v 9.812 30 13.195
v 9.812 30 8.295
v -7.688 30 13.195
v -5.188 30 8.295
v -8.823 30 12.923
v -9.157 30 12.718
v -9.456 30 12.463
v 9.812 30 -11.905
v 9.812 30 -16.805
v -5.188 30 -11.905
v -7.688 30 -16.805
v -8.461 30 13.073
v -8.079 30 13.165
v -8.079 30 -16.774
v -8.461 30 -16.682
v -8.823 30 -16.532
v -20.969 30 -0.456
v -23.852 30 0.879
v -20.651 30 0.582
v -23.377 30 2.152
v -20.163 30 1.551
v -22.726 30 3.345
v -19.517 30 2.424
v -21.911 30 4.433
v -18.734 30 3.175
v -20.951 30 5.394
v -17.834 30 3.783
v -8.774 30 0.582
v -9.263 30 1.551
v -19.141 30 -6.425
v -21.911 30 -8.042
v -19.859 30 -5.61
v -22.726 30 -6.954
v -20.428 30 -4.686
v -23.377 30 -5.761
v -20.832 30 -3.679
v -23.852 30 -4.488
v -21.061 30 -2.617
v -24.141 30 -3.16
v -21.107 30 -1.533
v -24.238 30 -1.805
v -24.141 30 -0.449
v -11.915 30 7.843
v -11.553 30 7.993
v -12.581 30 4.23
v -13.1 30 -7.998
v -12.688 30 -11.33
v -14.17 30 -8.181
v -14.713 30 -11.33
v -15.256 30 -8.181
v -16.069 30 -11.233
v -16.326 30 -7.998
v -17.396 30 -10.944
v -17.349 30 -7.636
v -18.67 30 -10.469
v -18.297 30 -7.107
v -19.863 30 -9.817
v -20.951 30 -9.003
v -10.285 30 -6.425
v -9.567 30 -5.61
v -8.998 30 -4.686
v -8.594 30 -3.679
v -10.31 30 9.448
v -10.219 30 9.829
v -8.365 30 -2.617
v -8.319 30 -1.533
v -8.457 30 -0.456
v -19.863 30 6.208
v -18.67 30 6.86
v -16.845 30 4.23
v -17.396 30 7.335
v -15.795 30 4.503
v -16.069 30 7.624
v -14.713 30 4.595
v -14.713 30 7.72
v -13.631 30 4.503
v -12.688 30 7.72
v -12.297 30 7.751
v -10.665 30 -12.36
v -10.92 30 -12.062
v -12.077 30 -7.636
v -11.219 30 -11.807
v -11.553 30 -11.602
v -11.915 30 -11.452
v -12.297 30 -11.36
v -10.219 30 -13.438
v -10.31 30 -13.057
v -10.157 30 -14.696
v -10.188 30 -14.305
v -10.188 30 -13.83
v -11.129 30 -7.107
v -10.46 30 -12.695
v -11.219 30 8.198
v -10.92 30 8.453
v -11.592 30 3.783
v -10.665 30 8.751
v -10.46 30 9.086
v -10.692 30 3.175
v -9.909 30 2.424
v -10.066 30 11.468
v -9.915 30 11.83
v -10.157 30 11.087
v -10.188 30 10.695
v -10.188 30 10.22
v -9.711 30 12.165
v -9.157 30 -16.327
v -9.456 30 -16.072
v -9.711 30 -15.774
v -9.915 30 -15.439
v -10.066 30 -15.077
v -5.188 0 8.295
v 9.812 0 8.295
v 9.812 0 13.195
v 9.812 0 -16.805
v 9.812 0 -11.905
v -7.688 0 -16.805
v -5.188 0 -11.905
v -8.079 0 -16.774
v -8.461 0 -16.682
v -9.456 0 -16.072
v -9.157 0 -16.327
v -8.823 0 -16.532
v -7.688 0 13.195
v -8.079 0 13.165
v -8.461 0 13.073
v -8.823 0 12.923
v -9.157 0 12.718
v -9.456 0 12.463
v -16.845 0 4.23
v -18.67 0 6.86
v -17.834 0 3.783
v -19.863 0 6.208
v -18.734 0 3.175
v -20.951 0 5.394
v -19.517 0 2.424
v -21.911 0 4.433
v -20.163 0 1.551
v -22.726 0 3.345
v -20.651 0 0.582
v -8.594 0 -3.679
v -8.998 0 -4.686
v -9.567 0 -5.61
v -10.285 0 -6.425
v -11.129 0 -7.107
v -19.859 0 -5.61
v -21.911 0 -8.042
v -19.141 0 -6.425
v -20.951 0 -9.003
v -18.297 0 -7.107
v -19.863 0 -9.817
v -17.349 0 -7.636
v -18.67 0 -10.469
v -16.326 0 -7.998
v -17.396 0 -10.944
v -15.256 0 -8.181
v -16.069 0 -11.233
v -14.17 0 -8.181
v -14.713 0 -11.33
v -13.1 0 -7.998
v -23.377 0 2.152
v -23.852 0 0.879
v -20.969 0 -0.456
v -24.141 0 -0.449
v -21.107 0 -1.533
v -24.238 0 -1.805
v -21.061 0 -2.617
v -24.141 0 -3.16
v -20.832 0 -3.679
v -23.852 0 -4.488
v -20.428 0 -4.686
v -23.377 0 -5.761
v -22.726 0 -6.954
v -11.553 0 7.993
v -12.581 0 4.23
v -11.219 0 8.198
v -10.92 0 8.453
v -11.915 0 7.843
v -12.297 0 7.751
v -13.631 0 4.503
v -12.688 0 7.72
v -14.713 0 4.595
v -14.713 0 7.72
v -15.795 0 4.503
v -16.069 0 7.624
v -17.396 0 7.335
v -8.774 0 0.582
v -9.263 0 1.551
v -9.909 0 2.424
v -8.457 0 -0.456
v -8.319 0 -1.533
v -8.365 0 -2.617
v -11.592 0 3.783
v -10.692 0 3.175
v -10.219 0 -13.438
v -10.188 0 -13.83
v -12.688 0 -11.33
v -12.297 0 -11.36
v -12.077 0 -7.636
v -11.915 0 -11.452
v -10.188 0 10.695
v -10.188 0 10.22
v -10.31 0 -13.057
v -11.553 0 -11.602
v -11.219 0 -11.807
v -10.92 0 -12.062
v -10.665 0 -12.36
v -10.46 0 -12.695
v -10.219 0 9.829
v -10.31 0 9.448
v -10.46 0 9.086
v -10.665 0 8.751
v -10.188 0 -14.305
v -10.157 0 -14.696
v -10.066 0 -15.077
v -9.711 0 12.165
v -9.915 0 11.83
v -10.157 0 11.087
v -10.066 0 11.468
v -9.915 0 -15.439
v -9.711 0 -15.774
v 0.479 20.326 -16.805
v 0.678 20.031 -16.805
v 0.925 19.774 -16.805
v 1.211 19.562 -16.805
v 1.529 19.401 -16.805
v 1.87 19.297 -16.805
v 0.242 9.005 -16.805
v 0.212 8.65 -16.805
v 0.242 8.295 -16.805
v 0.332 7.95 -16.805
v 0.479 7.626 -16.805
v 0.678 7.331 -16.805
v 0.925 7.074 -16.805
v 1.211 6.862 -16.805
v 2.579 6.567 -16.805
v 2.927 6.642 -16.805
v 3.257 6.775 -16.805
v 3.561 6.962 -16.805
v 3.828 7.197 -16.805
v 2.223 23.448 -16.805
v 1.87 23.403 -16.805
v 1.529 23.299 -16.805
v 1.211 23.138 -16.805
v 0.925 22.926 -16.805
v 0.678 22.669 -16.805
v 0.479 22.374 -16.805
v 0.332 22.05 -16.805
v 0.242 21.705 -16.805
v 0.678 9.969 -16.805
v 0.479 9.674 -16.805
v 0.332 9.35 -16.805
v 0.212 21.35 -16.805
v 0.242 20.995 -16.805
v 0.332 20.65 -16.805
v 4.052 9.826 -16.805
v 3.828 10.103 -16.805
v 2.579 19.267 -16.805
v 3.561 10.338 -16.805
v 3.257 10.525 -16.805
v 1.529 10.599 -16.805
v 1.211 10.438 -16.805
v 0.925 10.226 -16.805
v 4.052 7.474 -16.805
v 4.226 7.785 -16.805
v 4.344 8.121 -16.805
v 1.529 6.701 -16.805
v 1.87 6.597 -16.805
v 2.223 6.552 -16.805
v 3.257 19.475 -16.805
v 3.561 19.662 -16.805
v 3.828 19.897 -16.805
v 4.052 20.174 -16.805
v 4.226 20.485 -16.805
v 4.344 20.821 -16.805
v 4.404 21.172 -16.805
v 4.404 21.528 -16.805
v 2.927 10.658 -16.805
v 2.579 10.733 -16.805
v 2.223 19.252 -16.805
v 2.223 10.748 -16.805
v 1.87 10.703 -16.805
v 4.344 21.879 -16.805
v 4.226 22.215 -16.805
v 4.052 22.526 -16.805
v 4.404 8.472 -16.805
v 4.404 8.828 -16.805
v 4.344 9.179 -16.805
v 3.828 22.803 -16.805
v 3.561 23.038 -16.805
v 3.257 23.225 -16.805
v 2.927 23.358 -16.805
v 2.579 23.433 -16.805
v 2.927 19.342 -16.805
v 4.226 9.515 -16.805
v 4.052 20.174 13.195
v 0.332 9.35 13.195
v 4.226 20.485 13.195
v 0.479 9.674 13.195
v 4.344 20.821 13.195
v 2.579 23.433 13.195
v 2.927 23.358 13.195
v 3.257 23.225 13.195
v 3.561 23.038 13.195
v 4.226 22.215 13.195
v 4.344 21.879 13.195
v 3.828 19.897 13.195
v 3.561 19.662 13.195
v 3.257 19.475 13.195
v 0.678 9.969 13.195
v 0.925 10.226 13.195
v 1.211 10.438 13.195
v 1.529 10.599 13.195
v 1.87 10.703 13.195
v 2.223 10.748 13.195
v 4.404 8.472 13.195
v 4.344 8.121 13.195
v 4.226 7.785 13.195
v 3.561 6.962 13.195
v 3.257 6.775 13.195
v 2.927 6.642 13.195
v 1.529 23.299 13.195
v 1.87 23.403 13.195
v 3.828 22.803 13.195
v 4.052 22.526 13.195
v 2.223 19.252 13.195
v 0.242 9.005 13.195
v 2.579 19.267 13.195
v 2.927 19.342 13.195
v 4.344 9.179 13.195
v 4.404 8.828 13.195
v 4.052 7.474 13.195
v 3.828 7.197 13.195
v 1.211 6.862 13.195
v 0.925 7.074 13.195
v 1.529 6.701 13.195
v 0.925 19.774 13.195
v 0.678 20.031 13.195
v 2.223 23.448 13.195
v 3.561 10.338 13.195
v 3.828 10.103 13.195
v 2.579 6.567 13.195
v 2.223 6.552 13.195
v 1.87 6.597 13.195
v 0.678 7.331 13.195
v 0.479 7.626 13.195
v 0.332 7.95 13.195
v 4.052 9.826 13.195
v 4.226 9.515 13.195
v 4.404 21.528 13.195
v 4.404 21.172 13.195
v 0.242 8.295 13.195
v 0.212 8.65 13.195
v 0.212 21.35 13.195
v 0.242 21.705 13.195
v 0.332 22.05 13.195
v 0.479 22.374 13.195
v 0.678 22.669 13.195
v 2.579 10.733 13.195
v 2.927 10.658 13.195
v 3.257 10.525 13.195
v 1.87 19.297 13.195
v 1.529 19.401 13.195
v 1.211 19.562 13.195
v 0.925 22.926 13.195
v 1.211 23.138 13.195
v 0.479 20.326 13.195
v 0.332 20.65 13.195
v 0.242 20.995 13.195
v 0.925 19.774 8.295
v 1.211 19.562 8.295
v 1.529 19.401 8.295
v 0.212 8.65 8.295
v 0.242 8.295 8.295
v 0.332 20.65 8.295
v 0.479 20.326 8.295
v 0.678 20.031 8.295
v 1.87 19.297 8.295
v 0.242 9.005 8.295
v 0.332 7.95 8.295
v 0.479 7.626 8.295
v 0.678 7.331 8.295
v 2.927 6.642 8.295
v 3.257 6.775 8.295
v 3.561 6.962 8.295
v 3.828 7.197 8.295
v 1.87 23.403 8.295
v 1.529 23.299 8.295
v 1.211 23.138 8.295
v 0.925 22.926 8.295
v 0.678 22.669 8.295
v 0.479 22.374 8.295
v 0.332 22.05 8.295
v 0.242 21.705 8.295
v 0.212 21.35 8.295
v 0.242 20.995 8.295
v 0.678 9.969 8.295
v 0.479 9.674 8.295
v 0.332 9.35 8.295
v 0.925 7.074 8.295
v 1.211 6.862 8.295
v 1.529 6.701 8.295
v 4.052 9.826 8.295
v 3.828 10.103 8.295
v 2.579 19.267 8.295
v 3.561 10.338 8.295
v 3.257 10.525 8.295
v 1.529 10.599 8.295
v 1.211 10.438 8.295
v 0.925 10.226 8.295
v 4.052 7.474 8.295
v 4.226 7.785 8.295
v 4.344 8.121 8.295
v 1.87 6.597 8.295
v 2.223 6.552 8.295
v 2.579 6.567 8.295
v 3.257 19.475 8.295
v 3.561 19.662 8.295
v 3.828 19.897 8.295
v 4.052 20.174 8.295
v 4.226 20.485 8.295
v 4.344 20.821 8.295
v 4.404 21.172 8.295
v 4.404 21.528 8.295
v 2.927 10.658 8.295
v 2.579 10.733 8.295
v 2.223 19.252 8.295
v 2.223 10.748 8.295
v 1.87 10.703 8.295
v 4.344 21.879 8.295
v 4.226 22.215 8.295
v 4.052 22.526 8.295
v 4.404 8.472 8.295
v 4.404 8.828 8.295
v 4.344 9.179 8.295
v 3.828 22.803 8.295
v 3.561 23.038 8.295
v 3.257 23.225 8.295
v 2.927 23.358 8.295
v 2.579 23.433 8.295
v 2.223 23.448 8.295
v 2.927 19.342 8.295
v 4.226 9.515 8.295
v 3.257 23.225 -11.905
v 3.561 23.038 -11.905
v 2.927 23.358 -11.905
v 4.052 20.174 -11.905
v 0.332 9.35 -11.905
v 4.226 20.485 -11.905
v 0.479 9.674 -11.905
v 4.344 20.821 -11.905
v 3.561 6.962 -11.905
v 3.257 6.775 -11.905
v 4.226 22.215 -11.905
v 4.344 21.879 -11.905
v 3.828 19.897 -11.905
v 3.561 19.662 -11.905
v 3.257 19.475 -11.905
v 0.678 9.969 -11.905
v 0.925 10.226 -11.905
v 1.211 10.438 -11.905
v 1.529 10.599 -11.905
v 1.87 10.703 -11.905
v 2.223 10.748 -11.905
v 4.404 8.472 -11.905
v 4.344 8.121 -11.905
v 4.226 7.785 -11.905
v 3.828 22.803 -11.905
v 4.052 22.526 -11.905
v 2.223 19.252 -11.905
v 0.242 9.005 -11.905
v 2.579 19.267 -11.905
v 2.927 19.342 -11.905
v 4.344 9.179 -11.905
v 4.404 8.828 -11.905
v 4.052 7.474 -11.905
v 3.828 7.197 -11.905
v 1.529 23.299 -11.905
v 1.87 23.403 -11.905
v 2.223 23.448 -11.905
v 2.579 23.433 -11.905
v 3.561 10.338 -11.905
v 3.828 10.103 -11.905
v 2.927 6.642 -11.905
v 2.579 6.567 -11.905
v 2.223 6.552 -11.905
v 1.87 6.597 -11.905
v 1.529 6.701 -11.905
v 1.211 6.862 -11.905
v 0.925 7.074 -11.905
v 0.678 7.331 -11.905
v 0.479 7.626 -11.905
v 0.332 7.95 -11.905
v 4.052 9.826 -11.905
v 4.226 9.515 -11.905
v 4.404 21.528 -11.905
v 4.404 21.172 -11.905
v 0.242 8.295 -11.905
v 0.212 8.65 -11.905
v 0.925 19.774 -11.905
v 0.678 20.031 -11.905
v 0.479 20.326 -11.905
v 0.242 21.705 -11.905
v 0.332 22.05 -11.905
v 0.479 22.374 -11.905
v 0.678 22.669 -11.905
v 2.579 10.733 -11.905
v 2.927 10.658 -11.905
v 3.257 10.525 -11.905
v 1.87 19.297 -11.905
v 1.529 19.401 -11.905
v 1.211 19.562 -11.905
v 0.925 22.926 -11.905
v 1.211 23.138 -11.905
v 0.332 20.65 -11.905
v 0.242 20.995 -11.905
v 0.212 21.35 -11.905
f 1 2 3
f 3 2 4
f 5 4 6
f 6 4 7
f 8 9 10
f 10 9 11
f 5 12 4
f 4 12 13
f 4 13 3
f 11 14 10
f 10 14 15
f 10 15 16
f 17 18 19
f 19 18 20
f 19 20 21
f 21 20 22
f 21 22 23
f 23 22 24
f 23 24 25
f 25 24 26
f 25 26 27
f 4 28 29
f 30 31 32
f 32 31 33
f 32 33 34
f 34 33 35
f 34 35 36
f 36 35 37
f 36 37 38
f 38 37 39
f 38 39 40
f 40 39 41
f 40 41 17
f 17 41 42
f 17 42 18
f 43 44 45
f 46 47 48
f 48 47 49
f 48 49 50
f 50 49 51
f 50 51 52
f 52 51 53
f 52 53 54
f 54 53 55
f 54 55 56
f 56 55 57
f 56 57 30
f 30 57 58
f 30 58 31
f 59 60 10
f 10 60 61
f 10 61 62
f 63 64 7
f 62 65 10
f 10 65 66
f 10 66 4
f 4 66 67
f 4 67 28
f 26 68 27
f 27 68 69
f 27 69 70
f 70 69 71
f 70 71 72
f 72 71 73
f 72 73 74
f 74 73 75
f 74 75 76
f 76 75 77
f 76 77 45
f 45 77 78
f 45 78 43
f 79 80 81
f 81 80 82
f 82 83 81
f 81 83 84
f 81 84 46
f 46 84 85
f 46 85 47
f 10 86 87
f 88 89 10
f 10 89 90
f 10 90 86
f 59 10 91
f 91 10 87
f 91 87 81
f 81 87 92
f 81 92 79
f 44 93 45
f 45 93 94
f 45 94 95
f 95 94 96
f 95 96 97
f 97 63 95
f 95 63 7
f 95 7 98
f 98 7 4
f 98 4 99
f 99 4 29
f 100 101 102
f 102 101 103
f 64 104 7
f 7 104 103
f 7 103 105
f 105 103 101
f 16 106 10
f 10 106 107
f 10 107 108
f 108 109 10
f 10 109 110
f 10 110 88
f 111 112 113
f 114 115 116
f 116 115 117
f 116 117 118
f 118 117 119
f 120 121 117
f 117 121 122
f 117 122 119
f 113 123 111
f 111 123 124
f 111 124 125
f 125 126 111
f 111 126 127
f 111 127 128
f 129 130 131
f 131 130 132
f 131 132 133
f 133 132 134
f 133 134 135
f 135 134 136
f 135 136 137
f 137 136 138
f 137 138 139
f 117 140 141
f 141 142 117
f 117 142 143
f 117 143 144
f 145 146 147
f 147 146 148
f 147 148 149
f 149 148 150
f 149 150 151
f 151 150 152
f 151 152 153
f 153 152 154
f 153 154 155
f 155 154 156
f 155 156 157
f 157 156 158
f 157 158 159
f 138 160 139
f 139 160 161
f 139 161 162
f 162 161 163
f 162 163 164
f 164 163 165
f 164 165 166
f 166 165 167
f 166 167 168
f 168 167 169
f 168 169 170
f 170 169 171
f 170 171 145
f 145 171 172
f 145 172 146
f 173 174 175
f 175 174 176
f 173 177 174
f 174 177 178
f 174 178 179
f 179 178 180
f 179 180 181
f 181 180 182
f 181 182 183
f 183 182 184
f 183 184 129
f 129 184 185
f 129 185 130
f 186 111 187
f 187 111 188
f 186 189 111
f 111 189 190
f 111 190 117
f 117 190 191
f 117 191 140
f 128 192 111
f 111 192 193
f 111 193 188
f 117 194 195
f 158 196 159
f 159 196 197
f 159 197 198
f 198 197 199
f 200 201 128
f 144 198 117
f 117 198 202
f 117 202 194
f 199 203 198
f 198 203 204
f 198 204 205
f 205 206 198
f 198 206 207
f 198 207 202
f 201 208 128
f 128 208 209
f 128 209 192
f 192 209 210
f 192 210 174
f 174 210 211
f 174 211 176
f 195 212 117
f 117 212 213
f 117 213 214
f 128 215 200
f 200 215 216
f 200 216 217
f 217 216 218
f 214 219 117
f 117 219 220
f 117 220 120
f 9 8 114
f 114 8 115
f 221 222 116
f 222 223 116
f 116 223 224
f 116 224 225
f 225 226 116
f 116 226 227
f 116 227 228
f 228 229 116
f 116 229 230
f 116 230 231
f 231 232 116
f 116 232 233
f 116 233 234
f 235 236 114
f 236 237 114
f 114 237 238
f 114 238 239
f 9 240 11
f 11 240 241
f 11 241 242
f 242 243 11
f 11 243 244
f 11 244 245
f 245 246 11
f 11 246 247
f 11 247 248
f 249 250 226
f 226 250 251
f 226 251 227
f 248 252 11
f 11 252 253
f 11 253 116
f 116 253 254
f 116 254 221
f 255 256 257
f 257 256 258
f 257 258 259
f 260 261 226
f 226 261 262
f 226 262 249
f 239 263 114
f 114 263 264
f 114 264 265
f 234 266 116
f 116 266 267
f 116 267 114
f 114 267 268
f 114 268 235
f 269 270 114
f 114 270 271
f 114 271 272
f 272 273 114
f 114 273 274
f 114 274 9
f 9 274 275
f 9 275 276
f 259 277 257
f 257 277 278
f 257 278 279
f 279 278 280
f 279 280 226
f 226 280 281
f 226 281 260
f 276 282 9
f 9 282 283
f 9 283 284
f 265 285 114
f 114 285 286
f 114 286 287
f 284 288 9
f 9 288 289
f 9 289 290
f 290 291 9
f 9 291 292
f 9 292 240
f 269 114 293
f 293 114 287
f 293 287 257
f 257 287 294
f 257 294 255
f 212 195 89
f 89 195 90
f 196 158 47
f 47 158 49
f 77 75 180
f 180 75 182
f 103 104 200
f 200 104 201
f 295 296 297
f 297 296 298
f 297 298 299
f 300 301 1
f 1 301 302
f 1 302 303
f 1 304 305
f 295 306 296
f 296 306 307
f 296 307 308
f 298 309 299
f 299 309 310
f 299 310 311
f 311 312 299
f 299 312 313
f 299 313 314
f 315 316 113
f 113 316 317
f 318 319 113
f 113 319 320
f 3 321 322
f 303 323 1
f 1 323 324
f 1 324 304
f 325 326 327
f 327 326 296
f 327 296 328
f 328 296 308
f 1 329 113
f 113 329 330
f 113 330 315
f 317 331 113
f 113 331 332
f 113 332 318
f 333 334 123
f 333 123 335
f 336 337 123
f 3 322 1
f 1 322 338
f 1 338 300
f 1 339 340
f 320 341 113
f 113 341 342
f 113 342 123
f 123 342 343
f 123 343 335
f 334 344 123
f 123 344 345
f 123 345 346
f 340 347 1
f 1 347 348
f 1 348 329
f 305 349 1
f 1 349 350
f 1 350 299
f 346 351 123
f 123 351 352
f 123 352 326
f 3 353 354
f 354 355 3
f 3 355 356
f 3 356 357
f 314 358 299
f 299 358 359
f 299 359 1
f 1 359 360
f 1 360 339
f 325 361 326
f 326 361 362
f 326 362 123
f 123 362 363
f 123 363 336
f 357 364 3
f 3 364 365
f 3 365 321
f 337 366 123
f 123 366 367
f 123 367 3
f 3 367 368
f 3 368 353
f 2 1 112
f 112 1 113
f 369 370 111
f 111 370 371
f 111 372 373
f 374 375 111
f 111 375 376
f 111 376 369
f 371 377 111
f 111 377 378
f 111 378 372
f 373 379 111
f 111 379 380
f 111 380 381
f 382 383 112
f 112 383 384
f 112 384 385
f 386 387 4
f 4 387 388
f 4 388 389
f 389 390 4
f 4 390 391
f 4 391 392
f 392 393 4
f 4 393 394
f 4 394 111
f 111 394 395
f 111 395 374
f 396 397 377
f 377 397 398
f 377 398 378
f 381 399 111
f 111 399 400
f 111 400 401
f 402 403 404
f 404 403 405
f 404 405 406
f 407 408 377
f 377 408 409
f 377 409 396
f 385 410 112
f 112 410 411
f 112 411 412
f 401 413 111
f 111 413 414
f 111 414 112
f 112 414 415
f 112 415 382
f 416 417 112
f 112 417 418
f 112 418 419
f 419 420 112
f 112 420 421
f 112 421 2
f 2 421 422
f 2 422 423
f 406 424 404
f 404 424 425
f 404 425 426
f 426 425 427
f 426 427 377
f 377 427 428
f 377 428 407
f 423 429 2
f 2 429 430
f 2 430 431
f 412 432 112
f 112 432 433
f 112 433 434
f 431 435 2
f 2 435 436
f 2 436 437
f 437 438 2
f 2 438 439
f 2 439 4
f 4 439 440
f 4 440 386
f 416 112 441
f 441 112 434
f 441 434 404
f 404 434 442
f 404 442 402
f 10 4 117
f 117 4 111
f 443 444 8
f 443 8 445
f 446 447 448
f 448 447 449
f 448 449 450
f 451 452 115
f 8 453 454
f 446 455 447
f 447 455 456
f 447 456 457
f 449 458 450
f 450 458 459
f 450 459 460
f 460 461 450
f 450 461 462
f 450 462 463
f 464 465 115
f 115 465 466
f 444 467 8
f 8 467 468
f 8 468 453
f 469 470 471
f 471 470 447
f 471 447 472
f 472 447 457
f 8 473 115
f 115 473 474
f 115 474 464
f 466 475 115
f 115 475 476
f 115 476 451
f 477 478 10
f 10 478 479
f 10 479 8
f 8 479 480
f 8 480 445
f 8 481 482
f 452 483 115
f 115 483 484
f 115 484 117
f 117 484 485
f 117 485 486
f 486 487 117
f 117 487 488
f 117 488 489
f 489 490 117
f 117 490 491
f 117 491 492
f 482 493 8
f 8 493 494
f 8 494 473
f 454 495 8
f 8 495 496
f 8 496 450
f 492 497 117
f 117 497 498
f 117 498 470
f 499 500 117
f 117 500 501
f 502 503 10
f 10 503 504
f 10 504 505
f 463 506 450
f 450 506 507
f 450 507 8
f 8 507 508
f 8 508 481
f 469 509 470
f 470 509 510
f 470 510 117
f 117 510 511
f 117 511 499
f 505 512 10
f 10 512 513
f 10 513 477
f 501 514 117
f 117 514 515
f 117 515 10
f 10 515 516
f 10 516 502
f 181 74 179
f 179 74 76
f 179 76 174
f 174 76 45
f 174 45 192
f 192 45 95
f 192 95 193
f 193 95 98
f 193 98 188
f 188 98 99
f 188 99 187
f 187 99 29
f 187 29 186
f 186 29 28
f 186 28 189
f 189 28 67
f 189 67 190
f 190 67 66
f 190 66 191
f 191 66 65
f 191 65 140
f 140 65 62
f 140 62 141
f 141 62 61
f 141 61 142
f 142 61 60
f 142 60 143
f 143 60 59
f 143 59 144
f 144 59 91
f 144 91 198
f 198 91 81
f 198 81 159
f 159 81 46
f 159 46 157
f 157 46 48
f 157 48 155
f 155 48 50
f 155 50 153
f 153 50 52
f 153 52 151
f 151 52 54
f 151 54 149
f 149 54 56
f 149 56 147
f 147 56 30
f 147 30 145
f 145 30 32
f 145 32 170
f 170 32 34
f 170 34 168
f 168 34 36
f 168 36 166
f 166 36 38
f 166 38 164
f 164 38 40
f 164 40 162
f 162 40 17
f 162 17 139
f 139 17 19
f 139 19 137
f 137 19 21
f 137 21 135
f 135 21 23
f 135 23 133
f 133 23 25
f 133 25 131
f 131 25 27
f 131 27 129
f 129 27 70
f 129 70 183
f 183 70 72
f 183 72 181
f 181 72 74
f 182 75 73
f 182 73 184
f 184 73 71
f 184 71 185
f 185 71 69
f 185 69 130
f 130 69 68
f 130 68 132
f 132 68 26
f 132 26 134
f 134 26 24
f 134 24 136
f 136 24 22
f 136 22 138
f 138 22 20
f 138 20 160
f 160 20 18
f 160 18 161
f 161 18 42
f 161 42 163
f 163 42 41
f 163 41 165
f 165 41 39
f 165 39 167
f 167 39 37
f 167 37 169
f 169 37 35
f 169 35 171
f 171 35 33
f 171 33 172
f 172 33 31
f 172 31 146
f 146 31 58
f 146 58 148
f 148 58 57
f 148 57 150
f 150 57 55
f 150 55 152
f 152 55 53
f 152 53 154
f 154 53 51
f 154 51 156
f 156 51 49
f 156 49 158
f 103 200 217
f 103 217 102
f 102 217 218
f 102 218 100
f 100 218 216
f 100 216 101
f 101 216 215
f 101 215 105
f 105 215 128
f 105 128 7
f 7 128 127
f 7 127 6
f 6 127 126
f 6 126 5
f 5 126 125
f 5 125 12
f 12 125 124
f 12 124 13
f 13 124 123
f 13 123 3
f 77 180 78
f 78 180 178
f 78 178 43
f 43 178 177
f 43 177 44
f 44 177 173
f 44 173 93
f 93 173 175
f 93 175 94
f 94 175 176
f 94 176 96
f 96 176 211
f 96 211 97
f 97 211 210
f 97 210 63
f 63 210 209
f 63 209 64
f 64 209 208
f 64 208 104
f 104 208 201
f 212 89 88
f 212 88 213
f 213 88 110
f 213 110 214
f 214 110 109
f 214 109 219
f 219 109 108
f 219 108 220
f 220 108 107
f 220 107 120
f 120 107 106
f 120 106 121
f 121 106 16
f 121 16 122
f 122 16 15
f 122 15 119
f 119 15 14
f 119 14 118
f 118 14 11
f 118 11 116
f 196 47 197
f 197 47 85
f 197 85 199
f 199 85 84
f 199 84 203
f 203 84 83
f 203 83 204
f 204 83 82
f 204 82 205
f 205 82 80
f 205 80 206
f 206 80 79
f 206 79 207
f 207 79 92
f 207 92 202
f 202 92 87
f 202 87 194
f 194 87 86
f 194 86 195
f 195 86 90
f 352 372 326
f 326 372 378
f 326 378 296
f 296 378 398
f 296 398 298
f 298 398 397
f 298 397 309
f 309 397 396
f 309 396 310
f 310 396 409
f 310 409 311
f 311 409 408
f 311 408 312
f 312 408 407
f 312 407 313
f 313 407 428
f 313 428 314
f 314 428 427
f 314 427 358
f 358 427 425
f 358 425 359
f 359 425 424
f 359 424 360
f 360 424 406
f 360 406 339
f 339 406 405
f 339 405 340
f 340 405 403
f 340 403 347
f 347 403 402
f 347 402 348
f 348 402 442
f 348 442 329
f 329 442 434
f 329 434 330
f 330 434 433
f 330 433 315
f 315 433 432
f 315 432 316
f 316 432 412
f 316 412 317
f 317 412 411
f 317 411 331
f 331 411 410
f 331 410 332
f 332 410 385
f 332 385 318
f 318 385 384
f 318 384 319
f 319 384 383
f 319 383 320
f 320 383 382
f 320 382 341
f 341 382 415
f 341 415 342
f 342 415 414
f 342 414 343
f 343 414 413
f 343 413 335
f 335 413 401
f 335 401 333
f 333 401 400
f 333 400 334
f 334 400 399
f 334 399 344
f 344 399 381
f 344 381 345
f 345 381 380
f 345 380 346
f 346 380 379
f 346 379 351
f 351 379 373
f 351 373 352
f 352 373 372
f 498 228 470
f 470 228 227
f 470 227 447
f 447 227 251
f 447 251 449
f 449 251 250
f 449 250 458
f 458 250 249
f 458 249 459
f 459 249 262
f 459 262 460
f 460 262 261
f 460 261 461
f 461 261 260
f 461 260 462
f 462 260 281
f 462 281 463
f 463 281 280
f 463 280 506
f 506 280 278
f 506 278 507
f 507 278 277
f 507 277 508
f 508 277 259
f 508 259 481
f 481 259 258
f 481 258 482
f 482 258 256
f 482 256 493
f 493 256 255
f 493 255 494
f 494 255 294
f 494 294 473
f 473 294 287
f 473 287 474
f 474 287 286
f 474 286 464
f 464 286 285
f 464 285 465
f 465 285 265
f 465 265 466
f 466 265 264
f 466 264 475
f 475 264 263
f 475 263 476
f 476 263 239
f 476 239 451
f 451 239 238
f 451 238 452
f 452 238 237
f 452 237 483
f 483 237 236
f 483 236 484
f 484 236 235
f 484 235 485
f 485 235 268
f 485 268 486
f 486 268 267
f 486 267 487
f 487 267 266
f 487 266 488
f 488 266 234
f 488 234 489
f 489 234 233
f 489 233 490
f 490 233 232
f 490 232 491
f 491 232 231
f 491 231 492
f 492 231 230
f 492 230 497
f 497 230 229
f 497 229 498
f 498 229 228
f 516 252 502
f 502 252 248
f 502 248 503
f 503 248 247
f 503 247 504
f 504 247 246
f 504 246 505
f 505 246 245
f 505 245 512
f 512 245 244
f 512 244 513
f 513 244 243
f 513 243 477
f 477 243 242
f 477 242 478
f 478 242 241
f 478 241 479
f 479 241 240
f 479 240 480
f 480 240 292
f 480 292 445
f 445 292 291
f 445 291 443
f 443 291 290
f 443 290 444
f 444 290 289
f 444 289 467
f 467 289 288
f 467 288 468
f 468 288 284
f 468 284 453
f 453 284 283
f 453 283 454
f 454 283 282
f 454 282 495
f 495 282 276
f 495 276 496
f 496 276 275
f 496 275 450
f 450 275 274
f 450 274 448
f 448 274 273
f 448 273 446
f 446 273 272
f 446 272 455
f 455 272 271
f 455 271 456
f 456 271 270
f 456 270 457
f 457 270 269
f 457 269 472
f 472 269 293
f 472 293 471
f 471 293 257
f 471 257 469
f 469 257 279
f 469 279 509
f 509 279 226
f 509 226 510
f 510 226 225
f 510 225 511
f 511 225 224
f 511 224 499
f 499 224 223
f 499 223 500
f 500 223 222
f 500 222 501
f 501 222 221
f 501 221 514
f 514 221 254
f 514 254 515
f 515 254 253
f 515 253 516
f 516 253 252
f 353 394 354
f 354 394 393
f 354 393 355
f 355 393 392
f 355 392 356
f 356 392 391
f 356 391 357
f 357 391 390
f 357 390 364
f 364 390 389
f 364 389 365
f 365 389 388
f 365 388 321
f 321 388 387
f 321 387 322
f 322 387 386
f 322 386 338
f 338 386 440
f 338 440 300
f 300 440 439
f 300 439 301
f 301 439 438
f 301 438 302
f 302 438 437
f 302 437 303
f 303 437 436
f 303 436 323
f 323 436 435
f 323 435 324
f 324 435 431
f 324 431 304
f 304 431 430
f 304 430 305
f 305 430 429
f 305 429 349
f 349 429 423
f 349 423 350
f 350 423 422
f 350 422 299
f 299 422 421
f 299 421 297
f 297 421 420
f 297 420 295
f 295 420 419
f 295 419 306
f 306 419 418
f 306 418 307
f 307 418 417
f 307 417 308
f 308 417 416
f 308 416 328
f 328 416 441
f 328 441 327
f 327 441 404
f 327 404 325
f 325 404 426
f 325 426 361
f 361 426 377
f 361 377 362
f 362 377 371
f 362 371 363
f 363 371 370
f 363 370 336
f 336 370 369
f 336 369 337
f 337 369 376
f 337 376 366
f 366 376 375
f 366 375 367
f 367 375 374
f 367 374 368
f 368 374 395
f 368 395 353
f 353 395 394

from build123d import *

# Parameters (mm, degrees)
SKETCH1_W                   = 15
SKETCH1_H                   = 4.9
SKETCH1_W_2                 = 5
SKETCH1_H_2                 = 19.05
SKETCH1_W_3                 = 14.05
BOSS_EXTRUDE1_DEPTH         = 30
SKETCH2_R                   = 6.4
CUT_EXTRUDE1_DEPTH          = 43.069832248
CUT_EXTRUDE2_DEPTH          = 30
FILLET1_R                   = 2.5
TAP_DRILL_FOR_M5X0_8_TAP1_D = 4.2


with BuildPart() as part:
    # Sketch1 → Boss-Extrude1 (new body)
    with BuildSketch(Plane(origin=(0, 0, 0), x_dir=(1, 0, 0), z_dir=(0, 1, 0))):
        with Locations((2.312030075, 14.354511278)):
            Rectangle(SKETCH1_W, SKETCH1_H)
        Polygon((-5.187969925, 16.804511278), (-10.187969925, 16.804511278), (-10.187969925, 11.329511278), (-5.187969925, 11.329511278), (-5.187969925, 11.904511278), align=None)
        with Locations((-7.687969925, 1.804511278)):
            Rectangle(SKETCH1_W_2, SKETCH1_H_2)
        with Locations((-17.212969925, 1.804511278)):
            Rectangle(SKETCH1_W_3, SKETCH1_H_2)
        Polygon((-5.187969925, -7.720488722), (-10.187969925, -7.720488722), (-10.187969925, -13.195488722), (-5.187969925, -13.195488722), (-5.187969925, -8.295488722), align=None)
        with Locations((2.312030075, -10.745488722)):
            Rectangle(SKETCH1_W, SKETCH1_H)
    extrude(amount=BOSS_EXTRUDE1_DEPTH)

    # Sketch2 → Cut-Extrude1 (cut, through all)
    with BuildSketch(Plane(origin=(0, 30, 0), x_dir=(1, 0, 0), z_dir=(0, 1, 0))):
        with Locations(Location((-14.712969925, 1.804511278, 0), (0, 0, 270))):
            Circle(SKETCH2_R)
    extrude(amount=-CUT_EXTRUDE1_DEPTH, mode=Mode.SUBTRACT)

    # Sketch4 → Cut-Extrude2 (cut)
    with BuildSketch(Plane(origin=(0, 30, 0), x_dir=(1, 0, 0), z_dir=(0, 1, 0))):
        with BuildLine():
            Line((-14.712969925, 11.329511278), (-24.237969925, 11.329511278))
            Line((-24.237969925, 11.329511278), (-24.237969925, 1.804511236))
            ThreePointArc((-24.237969925, 1.804511236), (-21.448162031, 8.539703354), (-14.712969925, 11.329511278))
        make_face()
        with BuildLine():
            ThreePointArc((-14.712969925, -7.720488722), (-21.448162001, -4.930680828), (-24.237969925, 1.804511236))
            Line((-24.237969925, 1.804511236), (-24.237969925, -7.720488722))
            Line((-24.237969925, -7.720488722), (-14.712969925, -7.720488722))
        make_face()
    extrude(amount=-CUT_EXTRUDE2_DEPTH, mode=Mode.SUBTRACT)

    # Fillet1
    fillet1_edges = [part.edges().sort_by_distance(p)[0] for p in [
        (-10.187969925, 15, 13.195488722),
        (-10.187969925, 15, 7.720488722),
        (-10.187969925, 15, -11.329511278),
        (-10.187969925, 15, -16.804511278),
    ]]
    fillet(fillet1_edges, radius=FILLET1_R)

    # Tap Drill for M5x0.8 Tap1 (through all)
    with Locations(Plane(origin=(0, 0, -16.804511278), x_dir=(-1, 0, 0), z_dir=(0, 0, -1))):
        with Locations((-2.312030075, 21.35), (-2.312030075, 8.65)):
            Hole(TAP_DRILL_FOR_M5X0_8_TAP1_D / 2)


solid = part.part
